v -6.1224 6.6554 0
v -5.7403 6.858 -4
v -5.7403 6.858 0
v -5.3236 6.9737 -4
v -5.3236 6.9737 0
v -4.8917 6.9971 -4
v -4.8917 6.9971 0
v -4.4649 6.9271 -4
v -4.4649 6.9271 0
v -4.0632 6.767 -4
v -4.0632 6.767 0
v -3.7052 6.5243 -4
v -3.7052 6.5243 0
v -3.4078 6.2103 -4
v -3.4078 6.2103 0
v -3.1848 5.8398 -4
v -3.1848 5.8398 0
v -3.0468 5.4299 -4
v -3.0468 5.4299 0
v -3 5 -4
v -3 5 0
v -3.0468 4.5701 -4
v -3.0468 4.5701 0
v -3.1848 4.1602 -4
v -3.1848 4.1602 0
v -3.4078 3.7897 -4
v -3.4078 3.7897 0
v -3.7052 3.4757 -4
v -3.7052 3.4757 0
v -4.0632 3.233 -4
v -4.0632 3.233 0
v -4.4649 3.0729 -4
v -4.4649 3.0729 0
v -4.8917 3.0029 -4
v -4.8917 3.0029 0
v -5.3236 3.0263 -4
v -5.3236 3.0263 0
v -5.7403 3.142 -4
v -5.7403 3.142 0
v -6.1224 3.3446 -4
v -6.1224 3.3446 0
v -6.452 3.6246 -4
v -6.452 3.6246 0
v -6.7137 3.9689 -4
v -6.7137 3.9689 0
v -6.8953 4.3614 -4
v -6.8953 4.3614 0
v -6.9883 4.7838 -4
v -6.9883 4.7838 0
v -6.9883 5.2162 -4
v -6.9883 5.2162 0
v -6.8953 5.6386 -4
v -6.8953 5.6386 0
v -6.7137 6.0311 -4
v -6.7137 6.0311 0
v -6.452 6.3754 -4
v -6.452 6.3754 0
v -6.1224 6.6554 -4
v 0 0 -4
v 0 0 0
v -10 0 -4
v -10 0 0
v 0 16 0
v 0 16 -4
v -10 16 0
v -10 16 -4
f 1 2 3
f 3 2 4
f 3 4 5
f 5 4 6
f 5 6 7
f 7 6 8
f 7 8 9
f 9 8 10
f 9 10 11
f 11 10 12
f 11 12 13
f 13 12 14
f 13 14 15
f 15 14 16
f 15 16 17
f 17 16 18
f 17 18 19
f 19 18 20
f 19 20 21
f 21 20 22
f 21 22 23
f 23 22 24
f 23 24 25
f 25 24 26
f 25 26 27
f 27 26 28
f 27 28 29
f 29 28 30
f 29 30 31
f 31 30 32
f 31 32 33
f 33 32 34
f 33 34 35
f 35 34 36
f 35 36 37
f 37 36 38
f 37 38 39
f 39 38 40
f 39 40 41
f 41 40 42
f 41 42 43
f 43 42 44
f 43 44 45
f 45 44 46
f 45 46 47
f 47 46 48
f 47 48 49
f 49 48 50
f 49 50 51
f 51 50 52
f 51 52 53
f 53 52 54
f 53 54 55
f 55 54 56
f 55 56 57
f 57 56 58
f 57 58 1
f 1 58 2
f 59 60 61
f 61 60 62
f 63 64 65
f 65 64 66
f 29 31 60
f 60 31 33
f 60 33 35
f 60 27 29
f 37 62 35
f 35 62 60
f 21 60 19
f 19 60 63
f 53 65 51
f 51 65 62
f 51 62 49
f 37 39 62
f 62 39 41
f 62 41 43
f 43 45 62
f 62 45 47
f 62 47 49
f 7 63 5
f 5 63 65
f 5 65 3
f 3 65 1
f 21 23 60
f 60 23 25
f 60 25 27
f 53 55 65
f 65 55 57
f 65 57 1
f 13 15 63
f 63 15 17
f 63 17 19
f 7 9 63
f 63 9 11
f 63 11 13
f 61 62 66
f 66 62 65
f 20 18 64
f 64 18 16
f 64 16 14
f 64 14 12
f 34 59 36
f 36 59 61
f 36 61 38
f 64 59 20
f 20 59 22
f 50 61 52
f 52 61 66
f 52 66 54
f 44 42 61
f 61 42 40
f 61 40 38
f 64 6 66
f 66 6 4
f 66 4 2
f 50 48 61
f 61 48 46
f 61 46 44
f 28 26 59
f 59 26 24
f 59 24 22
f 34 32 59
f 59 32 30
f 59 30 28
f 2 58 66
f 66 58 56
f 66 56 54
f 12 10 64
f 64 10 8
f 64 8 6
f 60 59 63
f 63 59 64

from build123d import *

# Parameters (mm, degrees)
SKETCH1_W           = 10
SKETCH1_H           = 4
BOSS_EXTRUDE1_DEPTH = 16
SKETCH2_R           = 2
CUT_EXTRUDE1_DEPTH  = 5


with BuildPart() as part:
    # Sketch1 → Boss-Extrude1 (new body)
    with BuildSketch(Plane(origin=(0, 0, 0), x_dir=(1, 0, 0), z_dir=(0, 1, 0))):
        with Locations((-5, 2)):
            Rectangle(SKETCH1_W, SKETCH1_H)
    extrude(amount=BOSS_EXTRUDE1_DEPTH)

    # Sketch2 → Cut-Extrude1 (cut, through all)
    with BuildSketch(Plane.XY):
        with Locations((-5, 5)):
            Circle(SKETCH2_R)
    extrude(amount=-CUT_EXTRUDE1_DEPTH, mode=Mode.SUBTRACT)


solid = part.part
